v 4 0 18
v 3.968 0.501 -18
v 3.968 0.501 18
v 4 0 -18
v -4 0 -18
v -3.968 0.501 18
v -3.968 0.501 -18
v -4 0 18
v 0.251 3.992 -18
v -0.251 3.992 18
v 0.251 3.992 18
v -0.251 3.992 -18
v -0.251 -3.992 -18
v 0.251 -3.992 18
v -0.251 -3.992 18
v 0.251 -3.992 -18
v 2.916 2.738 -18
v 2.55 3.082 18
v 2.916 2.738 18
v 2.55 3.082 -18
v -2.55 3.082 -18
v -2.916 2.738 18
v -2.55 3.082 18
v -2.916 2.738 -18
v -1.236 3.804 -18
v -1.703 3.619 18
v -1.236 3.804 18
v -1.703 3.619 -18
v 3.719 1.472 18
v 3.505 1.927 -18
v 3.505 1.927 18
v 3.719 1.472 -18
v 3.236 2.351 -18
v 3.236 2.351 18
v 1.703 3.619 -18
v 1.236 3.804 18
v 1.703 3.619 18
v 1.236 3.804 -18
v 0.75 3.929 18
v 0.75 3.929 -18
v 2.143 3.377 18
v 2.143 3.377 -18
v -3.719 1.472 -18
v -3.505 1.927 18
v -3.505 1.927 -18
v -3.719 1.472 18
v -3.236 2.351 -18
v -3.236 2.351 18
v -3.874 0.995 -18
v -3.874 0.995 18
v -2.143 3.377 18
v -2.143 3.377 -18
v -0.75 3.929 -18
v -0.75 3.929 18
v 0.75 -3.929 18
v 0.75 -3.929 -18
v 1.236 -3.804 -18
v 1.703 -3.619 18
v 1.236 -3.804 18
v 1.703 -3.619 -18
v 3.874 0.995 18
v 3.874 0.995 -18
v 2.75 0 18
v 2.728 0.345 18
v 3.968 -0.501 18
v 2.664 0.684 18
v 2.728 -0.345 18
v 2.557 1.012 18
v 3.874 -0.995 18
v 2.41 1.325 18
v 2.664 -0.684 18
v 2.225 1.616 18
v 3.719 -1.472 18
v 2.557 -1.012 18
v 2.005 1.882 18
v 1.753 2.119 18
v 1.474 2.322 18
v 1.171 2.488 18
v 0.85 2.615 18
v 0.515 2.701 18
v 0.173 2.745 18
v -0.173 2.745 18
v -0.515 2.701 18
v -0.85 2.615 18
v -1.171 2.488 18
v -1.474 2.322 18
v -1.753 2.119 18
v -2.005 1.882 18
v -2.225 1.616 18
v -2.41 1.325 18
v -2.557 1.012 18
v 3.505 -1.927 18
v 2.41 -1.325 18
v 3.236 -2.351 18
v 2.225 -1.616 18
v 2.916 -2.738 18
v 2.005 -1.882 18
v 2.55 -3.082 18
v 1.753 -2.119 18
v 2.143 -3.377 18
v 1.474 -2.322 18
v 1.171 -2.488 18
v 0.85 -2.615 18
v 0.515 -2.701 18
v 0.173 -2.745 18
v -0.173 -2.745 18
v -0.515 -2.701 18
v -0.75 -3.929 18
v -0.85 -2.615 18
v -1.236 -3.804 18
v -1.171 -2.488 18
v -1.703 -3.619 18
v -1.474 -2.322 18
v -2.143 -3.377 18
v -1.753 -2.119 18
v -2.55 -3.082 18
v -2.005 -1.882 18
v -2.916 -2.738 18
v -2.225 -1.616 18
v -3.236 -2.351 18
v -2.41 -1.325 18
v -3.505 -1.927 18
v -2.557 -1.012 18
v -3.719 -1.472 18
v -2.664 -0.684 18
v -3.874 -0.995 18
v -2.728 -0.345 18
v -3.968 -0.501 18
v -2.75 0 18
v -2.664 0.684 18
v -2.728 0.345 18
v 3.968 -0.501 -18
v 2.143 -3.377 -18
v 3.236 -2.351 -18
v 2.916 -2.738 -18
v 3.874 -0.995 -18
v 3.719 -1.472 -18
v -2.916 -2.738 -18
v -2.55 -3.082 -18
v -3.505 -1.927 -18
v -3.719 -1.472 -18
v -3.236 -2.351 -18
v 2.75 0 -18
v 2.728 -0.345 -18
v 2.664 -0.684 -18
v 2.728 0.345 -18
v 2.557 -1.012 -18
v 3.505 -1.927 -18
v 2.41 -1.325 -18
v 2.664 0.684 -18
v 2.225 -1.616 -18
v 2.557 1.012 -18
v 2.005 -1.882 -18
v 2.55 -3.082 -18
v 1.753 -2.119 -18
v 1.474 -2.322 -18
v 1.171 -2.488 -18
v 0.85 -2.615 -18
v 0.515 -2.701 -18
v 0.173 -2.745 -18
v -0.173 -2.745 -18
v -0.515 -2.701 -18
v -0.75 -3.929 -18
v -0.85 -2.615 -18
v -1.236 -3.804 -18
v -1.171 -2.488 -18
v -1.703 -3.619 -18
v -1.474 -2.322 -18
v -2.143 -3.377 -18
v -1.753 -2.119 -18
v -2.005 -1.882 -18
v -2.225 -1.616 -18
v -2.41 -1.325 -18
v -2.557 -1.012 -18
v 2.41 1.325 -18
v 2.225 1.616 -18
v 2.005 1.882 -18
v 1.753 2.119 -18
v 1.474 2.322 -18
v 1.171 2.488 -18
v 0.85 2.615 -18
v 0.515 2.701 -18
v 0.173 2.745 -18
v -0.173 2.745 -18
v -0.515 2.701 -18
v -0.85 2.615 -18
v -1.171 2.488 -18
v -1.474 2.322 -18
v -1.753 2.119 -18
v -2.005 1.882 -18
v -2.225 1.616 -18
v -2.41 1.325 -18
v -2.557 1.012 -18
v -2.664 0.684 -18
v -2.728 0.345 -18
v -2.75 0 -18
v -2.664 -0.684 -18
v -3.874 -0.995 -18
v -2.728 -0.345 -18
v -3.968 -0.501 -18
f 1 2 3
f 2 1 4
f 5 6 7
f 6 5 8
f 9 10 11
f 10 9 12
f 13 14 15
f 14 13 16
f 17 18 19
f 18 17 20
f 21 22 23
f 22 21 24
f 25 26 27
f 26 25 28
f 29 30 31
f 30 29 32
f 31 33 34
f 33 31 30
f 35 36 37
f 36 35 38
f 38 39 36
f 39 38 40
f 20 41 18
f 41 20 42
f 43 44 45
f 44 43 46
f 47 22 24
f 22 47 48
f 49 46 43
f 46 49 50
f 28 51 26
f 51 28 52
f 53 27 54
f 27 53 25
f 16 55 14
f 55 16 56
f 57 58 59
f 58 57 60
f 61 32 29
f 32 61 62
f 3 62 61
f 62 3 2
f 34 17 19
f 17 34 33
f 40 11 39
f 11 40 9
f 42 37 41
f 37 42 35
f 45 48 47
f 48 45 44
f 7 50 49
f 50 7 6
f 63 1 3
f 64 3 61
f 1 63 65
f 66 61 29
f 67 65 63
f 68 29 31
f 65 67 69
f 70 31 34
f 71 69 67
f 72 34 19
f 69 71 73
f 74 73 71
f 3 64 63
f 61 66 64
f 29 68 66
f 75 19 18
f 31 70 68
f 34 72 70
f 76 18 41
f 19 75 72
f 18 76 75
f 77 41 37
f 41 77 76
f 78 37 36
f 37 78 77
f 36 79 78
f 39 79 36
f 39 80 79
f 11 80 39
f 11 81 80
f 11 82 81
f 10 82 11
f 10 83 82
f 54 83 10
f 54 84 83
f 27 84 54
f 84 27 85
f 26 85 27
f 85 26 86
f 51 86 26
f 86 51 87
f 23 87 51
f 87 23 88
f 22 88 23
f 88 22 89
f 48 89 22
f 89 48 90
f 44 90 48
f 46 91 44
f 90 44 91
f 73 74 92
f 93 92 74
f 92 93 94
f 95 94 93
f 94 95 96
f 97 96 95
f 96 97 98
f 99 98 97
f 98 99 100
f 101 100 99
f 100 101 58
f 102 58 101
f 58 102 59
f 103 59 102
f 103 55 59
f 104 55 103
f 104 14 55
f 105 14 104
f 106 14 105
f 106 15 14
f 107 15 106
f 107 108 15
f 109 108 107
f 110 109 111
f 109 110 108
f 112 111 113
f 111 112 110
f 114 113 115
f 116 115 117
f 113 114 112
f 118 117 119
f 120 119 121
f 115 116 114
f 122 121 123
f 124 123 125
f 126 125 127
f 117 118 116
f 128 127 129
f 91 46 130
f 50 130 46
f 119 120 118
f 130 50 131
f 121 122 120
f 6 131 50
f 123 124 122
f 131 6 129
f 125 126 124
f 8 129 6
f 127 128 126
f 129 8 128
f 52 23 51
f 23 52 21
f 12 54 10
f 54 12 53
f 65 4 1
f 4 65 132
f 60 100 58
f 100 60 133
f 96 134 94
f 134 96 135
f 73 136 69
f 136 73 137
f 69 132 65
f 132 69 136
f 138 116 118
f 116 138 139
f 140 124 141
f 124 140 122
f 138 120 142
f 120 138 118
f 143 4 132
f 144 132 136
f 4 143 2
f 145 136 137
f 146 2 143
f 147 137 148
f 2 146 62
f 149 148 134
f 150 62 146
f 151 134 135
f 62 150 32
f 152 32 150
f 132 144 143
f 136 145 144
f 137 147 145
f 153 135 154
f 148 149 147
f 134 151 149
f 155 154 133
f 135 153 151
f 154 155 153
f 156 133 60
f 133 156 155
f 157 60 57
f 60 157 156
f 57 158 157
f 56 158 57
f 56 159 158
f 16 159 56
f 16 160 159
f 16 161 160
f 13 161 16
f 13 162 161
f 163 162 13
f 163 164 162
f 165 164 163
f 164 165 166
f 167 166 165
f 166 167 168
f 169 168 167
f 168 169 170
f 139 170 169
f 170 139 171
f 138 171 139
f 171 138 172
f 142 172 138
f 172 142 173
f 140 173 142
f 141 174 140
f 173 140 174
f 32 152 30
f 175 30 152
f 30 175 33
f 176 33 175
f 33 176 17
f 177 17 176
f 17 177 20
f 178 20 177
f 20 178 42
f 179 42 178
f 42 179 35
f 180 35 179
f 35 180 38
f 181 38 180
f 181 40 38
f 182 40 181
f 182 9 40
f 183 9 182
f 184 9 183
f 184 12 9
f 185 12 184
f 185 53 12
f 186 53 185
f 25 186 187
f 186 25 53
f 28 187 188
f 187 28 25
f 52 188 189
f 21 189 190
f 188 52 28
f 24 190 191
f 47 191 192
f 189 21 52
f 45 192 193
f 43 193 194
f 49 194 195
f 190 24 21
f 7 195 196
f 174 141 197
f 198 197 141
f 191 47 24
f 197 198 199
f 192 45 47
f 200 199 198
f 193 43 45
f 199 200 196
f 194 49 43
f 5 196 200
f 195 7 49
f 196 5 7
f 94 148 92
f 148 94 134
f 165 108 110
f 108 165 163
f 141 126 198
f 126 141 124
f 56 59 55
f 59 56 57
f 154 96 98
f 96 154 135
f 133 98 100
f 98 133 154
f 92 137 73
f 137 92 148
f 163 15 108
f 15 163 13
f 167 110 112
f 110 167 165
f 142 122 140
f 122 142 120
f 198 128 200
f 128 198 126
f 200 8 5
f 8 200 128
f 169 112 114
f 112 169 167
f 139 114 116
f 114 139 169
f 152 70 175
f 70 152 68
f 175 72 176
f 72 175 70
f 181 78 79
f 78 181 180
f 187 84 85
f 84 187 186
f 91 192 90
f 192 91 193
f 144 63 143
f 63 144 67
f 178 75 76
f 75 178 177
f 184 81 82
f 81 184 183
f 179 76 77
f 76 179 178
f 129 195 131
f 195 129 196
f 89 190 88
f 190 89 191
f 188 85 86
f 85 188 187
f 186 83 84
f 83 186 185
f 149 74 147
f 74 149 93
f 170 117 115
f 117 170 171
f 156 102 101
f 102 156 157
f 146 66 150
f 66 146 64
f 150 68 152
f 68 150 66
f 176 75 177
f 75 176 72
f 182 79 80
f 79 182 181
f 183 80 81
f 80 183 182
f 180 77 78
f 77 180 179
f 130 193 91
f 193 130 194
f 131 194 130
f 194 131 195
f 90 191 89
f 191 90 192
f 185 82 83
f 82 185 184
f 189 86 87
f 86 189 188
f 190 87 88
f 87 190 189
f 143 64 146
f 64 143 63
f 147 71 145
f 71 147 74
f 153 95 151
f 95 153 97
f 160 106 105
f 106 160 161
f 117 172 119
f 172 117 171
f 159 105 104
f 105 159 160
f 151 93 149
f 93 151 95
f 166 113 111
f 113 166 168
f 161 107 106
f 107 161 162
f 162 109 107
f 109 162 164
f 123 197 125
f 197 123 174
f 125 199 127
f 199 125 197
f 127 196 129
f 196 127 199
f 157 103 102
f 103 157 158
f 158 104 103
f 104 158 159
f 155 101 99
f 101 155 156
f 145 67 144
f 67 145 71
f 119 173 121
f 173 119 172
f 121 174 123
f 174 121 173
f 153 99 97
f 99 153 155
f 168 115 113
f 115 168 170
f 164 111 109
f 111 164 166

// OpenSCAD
$fn = 50;


difference() {
	union() {
		translate(v = [0, 0, -18.0000000000]) {
			cylinder(h = 36, r = 4.0000000000);
		}
	}
	union() {
		translate(v = [0, 0, -100.0000000000]) {
			cylinder(h = 200, r = 2.7500000000);
		}
	}
}
